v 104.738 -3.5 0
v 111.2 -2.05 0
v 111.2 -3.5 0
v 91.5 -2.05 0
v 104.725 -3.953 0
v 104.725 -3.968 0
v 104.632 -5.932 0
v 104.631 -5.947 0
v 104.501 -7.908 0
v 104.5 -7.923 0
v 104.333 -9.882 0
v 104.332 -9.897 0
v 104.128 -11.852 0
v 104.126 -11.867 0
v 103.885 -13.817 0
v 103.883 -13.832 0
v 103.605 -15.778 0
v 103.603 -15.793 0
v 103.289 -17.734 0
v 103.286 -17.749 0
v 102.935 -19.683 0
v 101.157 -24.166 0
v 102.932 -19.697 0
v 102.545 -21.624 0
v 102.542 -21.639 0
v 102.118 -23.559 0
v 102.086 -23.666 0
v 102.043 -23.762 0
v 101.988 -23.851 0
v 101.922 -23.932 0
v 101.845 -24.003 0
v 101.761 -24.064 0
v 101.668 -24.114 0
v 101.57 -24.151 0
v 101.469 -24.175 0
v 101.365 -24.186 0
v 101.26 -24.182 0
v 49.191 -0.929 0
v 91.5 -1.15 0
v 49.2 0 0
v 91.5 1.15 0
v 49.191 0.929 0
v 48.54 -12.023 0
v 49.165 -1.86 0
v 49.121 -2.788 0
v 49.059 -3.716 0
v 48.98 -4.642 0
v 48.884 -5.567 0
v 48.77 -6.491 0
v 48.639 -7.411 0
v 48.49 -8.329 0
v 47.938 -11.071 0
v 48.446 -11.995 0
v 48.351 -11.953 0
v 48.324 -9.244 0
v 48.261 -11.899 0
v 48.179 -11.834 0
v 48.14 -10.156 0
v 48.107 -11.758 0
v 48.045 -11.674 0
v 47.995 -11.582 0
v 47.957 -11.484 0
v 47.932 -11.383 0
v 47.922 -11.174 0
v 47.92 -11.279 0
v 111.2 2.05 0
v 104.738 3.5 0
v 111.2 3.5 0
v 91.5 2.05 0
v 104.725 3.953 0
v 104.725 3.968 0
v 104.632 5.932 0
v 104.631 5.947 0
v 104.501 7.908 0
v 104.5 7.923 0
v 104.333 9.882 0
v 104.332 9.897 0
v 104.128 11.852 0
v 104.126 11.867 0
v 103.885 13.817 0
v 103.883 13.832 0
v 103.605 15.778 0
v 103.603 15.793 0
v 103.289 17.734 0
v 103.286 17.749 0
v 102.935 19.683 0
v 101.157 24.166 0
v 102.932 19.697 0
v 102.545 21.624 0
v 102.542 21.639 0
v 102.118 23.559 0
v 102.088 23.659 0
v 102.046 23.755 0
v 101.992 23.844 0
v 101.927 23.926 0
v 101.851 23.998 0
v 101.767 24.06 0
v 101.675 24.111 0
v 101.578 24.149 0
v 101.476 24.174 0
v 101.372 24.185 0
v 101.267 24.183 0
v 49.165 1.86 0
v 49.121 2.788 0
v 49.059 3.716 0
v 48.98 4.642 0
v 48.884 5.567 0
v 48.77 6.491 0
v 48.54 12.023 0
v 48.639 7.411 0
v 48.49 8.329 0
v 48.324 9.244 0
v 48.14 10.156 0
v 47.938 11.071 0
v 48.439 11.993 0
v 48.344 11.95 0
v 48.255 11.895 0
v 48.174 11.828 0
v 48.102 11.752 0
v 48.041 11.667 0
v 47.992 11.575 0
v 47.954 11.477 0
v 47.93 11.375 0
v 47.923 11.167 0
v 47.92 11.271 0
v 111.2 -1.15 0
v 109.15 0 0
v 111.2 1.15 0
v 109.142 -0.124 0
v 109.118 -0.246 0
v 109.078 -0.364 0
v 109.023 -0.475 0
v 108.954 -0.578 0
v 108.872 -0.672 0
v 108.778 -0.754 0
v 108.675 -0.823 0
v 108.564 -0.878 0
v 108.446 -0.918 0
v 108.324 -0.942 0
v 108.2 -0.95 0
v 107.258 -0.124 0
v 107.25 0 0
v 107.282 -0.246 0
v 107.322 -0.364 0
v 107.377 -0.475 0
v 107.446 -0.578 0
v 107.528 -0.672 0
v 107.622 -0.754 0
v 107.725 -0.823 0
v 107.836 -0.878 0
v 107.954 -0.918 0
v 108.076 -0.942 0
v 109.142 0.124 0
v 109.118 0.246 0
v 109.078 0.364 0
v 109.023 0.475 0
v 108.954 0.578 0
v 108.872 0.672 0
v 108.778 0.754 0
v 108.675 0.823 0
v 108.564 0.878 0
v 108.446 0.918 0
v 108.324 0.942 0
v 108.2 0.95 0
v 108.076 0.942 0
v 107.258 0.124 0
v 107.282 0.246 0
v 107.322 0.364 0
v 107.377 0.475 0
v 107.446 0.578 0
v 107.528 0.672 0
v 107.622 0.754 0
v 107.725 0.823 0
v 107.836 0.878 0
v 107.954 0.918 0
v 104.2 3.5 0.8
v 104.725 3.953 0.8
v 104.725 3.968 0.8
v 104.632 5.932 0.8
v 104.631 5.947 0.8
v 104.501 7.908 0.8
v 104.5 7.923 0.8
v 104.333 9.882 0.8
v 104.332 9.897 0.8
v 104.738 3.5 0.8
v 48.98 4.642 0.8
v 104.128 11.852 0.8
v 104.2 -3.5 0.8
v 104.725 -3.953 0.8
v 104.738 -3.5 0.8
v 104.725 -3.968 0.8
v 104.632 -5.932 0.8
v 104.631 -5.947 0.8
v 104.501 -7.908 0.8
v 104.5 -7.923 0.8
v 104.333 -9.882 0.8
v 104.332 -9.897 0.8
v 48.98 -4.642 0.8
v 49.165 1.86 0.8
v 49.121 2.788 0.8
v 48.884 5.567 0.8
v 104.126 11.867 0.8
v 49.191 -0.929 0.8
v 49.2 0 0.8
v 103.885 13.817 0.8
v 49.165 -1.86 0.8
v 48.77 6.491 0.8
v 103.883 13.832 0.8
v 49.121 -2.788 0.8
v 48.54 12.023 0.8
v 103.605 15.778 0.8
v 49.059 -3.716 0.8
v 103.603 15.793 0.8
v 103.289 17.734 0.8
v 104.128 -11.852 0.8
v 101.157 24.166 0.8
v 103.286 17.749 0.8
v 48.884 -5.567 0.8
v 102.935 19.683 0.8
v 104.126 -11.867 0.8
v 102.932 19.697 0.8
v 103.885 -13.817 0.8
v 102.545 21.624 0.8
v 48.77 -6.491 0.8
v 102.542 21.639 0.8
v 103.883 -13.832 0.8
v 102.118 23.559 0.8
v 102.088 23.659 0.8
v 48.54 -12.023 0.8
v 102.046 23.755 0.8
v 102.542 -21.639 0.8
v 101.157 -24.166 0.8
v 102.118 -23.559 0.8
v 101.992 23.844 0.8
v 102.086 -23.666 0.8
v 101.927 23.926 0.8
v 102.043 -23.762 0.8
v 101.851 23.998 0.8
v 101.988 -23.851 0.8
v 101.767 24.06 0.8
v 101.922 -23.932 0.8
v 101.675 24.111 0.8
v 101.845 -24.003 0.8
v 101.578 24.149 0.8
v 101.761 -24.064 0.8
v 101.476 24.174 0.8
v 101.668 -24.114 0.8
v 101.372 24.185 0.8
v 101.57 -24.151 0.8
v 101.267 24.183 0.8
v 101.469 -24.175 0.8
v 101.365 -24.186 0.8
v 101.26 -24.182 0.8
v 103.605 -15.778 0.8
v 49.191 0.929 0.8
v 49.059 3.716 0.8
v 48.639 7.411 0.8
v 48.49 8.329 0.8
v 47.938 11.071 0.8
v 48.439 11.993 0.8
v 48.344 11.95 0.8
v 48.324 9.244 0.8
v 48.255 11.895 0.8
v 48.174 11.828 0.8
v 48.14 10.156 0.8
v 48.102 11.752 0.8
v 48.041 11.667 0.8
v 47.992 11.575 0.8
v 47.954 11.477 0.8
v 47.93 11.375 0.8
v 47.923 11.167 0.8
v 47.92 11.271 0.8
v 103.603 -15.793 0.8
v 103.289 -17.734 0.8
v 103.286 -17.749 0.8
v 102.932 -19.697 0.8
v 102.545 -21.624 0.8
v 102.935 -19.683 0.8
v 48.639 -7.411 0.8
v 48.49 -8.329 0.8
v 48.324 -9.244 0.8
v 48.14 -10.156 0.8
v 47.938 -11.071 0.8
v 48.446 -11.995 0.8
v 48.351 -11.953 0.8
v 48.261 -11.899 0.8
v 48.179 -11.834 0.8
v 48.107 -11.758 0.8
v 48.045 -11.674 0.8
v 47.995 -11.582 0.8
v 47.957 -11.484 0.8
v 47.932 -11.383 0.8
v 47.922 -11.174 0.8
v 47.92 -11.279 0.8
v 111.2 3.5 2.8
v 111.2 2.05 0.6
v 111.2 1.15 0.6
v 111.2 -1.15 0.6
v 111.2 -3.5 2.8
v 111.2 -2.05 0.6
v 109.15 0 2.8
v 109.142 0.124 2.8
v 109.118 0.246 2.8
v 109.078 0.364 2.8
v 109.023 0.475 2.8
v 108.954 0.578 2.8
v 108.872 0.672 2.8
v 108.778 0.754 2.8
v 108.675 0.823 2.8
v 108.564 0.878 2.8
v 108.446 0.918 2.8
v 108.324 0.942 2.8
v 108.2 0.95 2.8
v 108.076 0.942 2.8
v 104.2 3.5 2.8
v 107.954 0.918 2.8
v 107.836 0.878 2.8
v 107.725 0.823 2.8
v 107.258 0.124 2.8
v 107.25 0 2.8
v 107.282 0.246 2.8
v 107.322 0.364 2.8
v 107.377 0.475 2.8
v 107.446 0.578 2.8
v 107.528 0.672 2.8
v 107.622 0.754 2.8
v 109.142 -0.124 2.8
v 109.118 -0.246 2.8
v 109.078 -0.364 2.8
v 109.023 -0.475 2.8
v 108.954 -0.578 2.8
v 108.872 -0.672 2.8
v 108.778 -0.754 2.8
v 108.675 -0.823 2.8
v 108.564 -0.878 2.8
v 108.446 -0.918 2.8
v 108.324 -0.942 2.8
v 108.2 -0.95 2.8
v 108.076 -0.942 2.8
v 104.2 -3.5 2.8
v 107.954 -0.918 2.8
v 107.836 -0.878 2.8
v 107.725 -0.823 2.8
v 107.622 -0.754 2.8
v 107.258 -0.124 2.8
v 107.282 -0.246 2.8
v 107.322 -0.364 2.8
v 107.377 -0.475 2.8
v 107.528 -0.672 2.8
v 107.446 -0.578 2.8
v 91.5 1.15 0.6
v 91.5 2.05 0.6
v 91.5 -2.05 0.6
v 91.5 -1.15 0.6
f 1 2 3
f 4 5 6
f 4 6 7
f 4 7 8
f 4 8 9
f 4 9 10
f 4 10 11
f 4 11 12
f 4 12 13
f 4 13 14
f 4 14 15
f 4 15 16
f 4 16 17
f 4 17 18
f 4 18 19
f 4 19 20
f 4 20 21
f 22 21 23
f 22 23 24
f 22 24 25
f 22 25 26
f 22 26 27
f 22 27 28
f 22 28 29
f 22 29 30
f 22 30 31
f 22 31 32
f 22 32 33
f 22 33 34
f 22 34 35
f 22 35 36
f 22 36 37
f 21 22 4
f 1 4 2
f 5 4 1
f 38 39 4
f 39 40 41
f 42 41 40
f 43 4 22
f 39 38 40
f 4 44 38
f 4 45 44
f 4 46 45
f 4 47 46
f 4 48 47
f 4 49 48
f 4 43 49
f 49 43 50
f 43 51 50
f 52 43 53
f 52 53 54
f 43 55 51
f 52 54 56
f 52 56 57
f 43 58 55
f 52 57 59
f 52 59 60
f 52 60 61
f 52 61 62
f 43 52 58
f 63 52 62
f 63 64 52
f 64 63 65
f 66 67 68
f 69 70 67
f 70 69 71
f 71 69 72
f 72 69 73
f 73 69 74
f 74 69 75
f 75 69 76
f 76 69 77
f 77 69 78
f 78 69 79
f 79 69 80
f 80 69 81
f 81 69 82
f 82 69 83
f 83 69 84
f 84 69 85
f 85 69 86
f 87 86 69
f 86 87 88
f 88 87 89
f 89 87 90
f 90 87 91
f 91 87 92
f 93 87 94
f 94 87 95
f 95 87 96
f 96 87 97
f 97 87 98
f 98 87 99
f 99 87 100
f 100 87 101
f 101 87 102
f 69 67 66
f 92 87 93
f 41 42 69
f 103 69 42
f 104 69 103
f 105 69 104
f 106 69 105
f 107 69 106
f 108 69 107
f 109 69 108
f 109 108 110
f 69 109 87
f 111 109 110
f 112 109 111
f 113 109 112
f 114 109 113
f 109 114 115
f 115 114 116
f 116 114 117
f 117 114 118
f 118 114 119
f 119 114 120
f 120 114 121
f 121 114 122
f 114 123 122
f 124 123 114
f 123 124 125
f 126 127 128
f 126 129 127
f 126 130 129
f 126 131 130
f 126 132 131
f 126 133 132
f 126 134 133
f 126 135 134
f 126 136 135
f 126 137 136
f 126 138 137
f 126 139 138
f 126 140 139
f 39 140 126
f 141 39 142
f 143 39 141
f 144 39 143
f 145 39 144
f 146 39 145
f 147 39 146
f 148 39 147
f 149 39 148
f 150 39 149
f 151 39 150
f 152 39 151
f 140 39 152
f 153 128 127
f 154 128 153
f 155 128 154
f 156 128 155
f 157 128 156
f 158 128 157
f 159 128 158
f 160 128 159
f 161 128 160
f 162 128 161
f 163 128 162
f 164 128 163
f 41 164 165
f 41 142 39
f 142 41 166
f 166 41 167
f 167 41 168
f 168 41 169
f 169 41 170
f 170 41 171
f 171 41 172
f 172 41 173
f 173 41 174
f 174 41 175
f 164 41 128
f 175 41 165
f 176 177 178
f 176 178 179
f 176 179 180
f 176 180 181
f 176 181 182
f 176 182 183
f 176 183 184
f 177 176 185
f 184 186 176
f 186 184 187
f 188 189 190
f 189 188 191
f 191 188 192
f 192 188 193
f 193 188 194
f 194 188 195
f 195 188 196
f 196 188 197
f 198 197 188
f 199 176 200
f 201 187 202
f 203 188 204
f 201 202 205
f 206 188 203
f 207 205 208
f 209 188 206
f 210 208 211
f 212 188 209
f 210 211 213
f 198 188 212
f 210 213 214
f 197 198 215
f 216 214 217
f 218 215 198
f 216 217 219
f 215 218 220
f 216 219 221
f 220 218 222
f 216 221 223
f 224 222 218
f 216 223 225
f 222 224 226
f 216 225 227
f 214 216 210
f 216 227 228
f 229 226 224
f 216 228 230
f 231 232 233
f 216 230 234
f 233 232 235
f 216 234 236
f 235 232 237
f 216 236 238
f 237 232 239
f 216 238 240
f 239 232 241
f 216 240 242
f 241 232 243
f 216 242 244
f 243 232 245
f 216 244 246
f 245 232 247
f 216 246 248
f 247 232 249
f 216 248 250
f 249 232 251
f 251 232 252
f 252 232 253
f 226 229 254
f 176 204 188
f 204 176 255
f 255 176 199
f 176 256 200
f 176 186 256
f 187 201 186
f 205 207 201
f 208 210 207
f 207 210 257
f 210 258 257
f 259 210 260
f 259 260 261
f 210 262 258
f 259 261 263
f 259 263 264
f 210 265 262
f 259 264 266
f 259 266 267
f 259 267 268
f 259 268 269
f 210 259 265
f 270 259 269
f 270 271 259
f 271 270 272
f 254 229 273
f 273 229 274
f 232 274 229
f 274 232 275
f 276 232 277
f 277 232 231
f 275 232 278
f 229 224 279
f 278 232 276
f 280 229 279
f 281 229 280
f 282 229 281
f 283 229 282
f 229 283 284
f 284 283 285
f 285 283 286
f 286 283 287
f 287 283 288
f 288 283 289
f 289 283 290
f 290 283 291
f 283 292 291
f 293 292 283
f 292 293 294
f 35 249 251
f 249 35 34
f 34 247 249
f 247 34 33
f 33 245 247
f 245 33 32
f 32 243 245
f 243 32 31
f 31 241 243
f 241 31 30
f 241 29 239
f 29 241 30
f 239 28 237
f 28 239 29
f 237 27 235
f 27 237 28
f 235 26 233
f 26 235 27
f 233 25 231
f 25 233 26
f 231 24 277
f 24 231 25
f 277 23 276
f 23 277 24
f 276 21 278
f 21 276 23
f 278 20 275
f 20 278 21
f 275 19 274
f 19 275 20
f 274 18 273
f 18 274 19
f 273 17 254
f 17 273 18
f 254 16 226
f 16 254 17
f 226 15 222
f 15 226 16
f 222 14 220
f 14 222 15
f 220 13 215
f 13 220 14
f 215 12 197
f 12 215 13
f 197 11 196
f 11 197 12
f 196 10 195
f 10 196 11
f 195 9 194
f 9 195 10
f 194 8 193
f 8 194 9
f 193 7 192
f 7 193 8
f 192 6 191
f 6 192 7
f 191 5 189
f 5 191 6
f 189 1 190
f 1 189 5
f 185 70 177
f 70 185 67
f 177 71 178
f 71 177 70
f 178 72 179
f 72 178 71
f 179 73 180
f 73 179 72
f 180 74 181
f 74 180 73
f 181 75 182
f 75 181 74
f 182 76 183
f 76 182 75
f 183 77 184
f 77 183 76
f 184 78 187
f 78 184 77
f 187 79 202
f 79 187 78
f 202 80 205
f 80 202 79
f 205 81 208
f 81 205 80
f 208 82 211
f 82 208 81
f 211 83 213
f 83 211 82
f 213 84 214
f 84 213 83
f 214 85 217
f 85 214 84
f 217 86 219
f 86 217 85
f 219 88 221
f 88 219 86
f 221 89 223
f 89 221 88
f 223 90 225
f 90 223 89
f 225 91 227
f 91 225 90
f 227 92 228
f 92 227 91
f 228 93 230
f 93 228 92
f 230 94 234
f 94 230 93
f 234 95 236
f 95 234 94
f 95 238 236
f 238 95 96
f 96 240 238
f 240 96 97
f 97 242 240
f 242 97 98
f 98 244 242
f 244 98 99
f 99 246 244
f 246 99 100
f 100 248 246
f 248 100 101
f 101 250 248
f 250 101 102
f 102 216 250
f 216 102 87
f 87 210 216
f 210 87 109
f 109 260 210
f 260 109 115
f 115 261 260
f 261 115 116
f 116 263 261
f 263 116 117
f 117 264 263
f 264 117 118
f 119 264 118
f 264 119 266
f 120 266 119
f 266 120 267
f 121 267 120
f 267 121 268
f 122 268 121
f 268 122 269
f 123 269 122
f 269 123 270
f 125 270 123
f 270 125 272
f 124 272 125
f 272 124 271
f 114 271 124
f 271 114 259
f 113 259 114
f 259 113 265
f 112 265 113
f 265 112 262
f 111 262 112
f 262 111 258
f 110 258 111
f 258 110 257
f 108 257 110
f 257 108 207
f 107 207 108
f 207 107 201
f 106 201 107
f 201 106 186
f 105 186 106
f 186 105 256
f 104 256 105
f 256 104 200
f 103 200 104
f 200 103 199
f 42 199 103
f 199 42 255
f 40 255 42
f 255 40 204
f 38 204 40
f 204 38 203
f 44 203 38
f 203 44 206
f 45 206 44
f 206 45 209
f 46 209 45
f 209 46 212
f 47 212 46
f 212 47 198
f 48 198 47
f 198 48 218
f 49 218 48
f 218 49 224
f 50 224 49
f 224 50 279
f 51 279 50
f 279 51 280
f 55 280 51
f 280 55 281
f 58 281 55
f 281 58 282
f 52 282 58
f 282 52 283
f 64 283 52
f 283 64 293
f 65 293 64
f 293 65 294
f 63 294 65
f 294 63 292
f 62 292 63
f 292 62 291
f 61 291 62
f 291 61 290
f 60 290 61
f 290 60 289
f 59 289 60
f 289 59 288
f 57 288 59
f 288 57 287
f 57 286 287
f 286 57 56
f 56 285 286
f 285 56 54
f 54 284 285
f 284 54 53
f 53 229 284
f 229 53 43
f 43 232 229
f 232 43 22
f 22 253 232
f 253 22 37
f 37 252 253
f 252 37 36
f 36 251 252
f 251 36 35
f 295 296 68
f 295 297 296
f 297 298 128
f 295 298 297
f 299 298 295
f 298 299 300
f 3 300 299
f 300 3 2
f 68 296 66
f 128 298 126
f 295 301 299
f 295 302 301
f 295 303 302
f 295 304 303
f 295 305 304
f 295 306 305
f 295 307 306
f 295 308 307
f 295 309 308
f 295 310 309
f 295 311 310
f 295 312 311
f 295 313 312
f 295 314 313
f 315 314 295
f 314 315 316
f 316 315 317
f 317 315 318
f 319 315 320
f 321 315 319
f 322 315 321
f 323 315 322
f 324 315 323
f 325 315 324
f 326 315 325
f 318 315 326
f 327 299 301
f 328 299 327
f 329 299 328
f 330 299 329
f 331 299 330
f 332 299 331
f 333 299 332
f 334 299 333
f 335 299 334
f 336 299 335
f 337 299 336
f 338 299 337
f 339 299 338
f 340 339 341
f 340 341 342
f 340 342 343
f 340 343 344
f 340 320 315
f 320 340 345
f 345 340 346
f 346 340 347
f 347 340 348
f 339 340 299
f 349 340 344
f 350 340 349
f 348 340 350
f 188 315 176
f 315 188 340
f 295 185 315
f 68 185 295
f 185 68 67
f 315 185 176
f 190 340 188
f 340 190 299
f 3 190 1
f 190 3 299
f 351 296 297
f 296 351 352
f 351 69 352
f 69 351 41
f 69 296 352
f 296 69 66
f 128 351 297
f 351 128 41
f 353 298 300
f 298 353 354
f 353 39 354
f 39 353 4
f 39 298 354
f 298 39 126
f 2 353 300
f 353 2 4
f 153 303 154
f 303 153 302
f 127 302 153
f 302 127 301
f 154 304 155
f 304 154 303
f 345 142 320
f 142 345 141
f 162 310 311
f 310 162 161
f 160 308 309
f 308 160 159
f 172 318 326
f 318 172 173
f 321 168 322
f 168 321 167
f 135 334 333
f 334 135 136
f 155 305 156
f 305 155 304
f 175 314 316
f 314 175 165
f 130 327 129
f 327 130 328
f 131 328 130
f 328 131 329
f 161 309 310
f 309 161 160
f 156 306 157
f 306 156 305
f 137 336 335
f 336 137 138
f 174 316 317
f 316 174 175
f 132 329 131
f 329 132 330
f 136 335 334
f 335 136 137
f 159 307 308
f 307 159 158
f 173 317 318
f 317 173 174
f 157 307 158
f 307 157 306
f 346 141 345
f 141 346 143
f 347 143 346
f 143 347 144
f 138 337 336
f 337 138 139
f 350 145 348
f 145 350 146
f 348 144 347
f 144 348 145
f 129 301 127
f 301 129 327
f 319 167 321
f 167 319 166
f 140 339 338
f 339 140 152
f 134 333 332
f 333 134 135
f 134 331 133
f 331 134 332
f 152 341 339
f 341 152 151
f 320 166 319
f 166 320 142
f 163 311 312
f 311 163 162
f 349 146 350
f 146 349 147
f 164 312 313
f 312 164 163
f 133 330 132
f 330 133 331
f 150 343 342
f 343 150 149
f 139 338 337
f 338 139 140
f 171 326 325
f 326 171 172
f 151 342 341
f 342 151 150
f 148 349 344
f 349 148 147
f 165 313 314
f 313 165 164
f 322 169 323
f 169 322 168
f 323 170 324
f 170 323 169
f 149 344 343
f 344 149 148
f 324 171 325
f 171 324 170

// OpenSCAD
// file: parameters.scad
// =============================================================================
// Gen-CL — nightly 2026-10-16 (physics_scorer, honest magpylib watts)
// Modular swap: exactly the Gen-CJ rotors, arcs and steel, on a thinner-copper stator (4.0 mm copper, so the magnet faces close in by 0.5 mm) that needs only ≈300 m of 26 AWG — the rest of the spool stays free. Swap stators by changing the gap sleeve only.
// Clocking 0 deg (magnets N facing S) + D-flat keyed bore + index notch + flip-symmetric hole map.
// Windable 2-piece bobbin; turns = physics_scorer turns_fit; copper only between flanges.
// Steel back-iron: 2× Ø198 × 4.76 mm (3/16") mild-steel discs (steel_backiron_disc.dxf); magnets sit ON the steel
// (through-pockets) -> score with --back-iron. Night 2026-10-16.
// =============================================================================
topology            = "dual_rotor";

// --- Wire / winding (physics_scorer winding-fit) -------------------------------
wire_awg            = 26;
wire_od             = 0.45;     // insulated OD mm (bare 0.405)
fill_realistic      = 0.65;     // insulated-wire area / window (DENSE layered wind with a jig; scorer cap 0.65)
turns               = 196;       // = physics_scorer turns_fit (do NOT raise)
coil_former_type    = "bobbin";
coil_core_inset     = 12.00;     // radial copper build: hub = copper boundary inset by this
wind_build_axial    = 0.0;      // nothing proud of the flanges
wind_build_radial   = 0.0;

// --- Bobbin (base + lid) ---------------------------------------------------------
coil_id_r           = 50.00;    // copper boundary sector
coil_od_r           = 104.00;
span_deg            = 25.99;    // = pitch - 2*asin((wall+0.85)/coil_id_r) -> >=1.2 mm stator web
former_web          = 4.00;     // copper height between flanges (TALL copper: steel keeps Bz up)
flange_t            = 0.80;     // >= 0.8 mm FDM wall rule (tall winds push on the flanges)
wall                = 0.80;     // flange lip beyond copper
former_bare_h       = former_web + 2 * flange_t;
coil_envelope_h     = former_bare_h + 2 * wind_build_axial;
tab_w               = 7.0;
tab_len             = 7.0;
tab_h               = former_bare_h / 2;
pin_d               = 1.9;      // 1.75 mm filament locating pin
coil_mount_r        = coil_od_r + 0.2 + 4.0;
lead_y              = 1.6;
lead_slot_w         = 0.9;
lead_groove_d       = 0.6;

// --- Gap -------------------------------------------------------------------------
run_clear           = 0.50;     // rotor face -> flange
gap_spacer_h        = run_clear + wind_build_axial;
m2m                 = coil_envelope_h + 2 * run_clear;   // rotor face to rotor face (= gap_sleeve length)

// --- Stator ----------------------------------------------------------------------
coil_stations       = 12;
bay_clear           = 0.35;     // 0.35 mm: bobbin BASES print IN PLACE inside the stator bays (print-in-place gap), then pop out
stator_thick        = former_bare_h;                        // bobbins flush both faces
stator_od           = 229.0;
shaft_clear_stator  = 14.0;     // stator is static; gap sleeve OD 12 spins inside
stator_ir           = 44.85;    // ANNULAR stator: open centre (nested one-plate pack); inner rim 4.0 mm

// --- Rotor(s) --------------------------------------------------------------------
magnet_Br           = 1.43;     // N52
magnet_d_large      = 20.0;
magnet_h_large      = 5.0;      // one O20x5 per pocket
magnet_h_small      = 5.0;      // one O5x5 per pocket
halbach_magnetisation = "diametric"; // O5x5 assist magnets MUST be DIAMETRICALLY magnetised (tangential)
rotor_b_same_axis   = true;     // same-index magnets share one axis: N faces S across the gap
large_pocket_d      = 20.3;
small_pocket_d      = 5.3;
pocket_h            = 5.00;     // THROUGH the carrier: magnet back face sits on the steel disc (FLUSH seat: carrier = magnet height, magnet face level with the rotor face)
large_n             = 8;
R_large             = 86.0;
R_small_inner       = 79.8;
R_small_mid         = 86.0;
R_small_outer       = 92.2;
small_r_list        = [R_small_inner, R_small_mid, R_small_outer];   // O5 pockets between poles
// --- N42 rectangular BLOCK magnets (2026-10-16/17): one 20x10x5 block per pole, radially INSIDE the O20 disc ---
block_R_list        = [64.5];   // block centre radius (pole angle); same polarity as its O20 -> radially extended pole
block_angle_list    = [0];
block_radial        = 20.0;    // block side that runs RADIALLY (mm)
block_tangential    = 10.0;    // block side that runs TANGENTIALLY (mm)
block_h             = 5.0;     // magnetised through the 5 mm thickness (axial), = magnet_h_large so it sits on the steel
block_Br            = 1.29;    // N42 remanence (1.28-1.32 T); scorer models it as a magpylib Cuboid
block_pocket_clear  = 0.3;    // pocket = block + 0.3 mm each way (+ 1.2 mm corner reliefs)
carrier_od          = 198.0;
ring_ir             = 51.35;    // RING rotor: PLA magnet ring r ring_ir..carrier_od/2 (steel disc = structural rotor)
hub_flange_od       = 58.0;     // separate rotor_hub flange (inside the ring, flush with the ring face)
csk_d               = 6.6;      // M3 countersunk head pocket (ISO 10642 head 6.0 nominal) on the stator face
csk_depth           = 1.55;     // = (csk_d - m3_clear) / 2: 90 deg cone; head sits 0.3 mm below the face
n_seg               = 8;        // magnet-carrier ARCS per rotor (segmented carrier)
seg_deg             = 360 / n_seg;
seg_start           = -32;   // arc edge angle (between pocket 0 and its clamp bolt)
seg_kerf_deg        = 0.4;      // gap between neighbouring arcs on the steel
carrier_thick       = pocket_h;
hub_h               = 12.0;     // > steel_t + insert: radial set-screw clears the steel
hub_od              = 24.0;     // slim hub so the M4 brace rods fit at R~18 inside the coil ring
hub_insert_d        = 4.0;      // M3 heat-set insert, radial, bears on the D-flat
rotor_b_offset_deg  = 0.0;      // CLOCKING: magnets directly opposite
shaft_key           = "dflat";
dflat_depth         = 0.5;      // 8 mm shaft with 0.5 mm flat (7.5 across flat)
index_notch_d       = 3.0;

// --- Steel back-iron (buyable laser-cut) -------------------------------------------
steel_t             = 4.76;      // mild steel thickness (image method ignores it; sized from steel_flux.py so the return path stays well below saturation)
steel_center_hole   = 26.0;     // slips over the rotor hub (OD 24)
steel_od            = carrier_od;   // steel disc OD = rotor carrier OD

// --- Modular MAX interface ----------------------------------------------------------
shaft_bore          = 8.35;
dflat_x             = 4.0 - dflat_depth + (shaft_bore - 8.0) / 2;
bearing_d           = 21.85;
bearing_h           = 7.2;
m3_clear            = 3.5;
bolt_r_inner        = 22.0;     // M3 steel-disc clamp bolts (inside the magnet ring)
bolt_n_inner        = 4;
bolt_inner_angles   = [0, 90, 180, 270];
bolt_r_outer        = 86.0;     // second M3 steel-disc clamp ring
bolt_outer_angles   = [13.0, 32.0, 58.0, 77.0, 103.0, 122.0, 148.0, 167.0, 193.0, 212.0, 238.0, 257.0, 283.0, 302.0, 328.0, 347.0];
flange_bolt_r       = 109.5;     // frame rods: OUTSIDE the rotor OD (rotors spin inside them)
flange_bolt_n       = 4;
flange_bolt_offset  = 45.00;    // between coil stations -> never cuts a lead groove/tab
brace_r             = 18.0;
brace_d             = 4.3;      // temporary M4 jack rods (assembly only)
brace_n             = 4;
brace_angles        = [45, 135, 225, 315];          // flip-symmetric

spacer_pad_od       = 14.0;
spacer_pad_id       = m3_clear;
endbell_od          = 229.0;
endbell_thick       = 8.0;
endbell_shaft_clear = 10.0;
collar_h            = 10.0;
standoff_od         = 9.0;
frame_standoff_h    = run_clear + carrier_thick + hub_h + collar_h + 2.0;
sleeve_od           = 12.0;
plate_max_mm        = 410;

$fn = 64;
// main file
// Gen-CL — bobbin LID (top flange + locating tab). Print x12, flange face DOWN on the bed.
// CA-glue onto the hub top BEFORE winding. Tab = lap joint into the stator tab pocket; 1.75 mm filament
// pin through pin hole + stator ledge, trim flush. Lead slots carry both leads flush.
include <parameters.scad>;
$fn = 48;
module sector_2d(r_in, r_out, ang) {
    polygon([
        for (a = [-ang/2 : ang/24 : ang/2]) [r_in*cos(a), r_in*sin(a)],
        for (a = [ang/2 : -ang/24 : -ang/2]) [r_out*cos(a), r_out*sin(a)]
    ]);
}
module footprint_2d() { offset(r=wall) sector_2d(coil_id_r, coil_od_r, span_deg); }
module hub_2d()       { offset(delta=-coil_core_inset) sector_2d(coil_id_r, coil_od_r, span_deg); }

difference() {
    union() {
        linear_extrude(flange_t) footprint_2d();
        translate([coil_od_r + 0.2, -tab_w/2, 0]) cube([tab_len, tab_w, tab_h]);
    }
    translate([coil_mount_r, 0, -0.1]) cylinder(d=pin_d, h=tab_h + 1);
    for (y = [lead_y, -lead_y])
        translate([coil_od_r - coil_core_inset - 0.5, y - lead_slot_w/2, -0.1])
            cube([coil_core_inset + tab_len + 2, lead_slot_w, lead_groove_d + 0.1]);
}
